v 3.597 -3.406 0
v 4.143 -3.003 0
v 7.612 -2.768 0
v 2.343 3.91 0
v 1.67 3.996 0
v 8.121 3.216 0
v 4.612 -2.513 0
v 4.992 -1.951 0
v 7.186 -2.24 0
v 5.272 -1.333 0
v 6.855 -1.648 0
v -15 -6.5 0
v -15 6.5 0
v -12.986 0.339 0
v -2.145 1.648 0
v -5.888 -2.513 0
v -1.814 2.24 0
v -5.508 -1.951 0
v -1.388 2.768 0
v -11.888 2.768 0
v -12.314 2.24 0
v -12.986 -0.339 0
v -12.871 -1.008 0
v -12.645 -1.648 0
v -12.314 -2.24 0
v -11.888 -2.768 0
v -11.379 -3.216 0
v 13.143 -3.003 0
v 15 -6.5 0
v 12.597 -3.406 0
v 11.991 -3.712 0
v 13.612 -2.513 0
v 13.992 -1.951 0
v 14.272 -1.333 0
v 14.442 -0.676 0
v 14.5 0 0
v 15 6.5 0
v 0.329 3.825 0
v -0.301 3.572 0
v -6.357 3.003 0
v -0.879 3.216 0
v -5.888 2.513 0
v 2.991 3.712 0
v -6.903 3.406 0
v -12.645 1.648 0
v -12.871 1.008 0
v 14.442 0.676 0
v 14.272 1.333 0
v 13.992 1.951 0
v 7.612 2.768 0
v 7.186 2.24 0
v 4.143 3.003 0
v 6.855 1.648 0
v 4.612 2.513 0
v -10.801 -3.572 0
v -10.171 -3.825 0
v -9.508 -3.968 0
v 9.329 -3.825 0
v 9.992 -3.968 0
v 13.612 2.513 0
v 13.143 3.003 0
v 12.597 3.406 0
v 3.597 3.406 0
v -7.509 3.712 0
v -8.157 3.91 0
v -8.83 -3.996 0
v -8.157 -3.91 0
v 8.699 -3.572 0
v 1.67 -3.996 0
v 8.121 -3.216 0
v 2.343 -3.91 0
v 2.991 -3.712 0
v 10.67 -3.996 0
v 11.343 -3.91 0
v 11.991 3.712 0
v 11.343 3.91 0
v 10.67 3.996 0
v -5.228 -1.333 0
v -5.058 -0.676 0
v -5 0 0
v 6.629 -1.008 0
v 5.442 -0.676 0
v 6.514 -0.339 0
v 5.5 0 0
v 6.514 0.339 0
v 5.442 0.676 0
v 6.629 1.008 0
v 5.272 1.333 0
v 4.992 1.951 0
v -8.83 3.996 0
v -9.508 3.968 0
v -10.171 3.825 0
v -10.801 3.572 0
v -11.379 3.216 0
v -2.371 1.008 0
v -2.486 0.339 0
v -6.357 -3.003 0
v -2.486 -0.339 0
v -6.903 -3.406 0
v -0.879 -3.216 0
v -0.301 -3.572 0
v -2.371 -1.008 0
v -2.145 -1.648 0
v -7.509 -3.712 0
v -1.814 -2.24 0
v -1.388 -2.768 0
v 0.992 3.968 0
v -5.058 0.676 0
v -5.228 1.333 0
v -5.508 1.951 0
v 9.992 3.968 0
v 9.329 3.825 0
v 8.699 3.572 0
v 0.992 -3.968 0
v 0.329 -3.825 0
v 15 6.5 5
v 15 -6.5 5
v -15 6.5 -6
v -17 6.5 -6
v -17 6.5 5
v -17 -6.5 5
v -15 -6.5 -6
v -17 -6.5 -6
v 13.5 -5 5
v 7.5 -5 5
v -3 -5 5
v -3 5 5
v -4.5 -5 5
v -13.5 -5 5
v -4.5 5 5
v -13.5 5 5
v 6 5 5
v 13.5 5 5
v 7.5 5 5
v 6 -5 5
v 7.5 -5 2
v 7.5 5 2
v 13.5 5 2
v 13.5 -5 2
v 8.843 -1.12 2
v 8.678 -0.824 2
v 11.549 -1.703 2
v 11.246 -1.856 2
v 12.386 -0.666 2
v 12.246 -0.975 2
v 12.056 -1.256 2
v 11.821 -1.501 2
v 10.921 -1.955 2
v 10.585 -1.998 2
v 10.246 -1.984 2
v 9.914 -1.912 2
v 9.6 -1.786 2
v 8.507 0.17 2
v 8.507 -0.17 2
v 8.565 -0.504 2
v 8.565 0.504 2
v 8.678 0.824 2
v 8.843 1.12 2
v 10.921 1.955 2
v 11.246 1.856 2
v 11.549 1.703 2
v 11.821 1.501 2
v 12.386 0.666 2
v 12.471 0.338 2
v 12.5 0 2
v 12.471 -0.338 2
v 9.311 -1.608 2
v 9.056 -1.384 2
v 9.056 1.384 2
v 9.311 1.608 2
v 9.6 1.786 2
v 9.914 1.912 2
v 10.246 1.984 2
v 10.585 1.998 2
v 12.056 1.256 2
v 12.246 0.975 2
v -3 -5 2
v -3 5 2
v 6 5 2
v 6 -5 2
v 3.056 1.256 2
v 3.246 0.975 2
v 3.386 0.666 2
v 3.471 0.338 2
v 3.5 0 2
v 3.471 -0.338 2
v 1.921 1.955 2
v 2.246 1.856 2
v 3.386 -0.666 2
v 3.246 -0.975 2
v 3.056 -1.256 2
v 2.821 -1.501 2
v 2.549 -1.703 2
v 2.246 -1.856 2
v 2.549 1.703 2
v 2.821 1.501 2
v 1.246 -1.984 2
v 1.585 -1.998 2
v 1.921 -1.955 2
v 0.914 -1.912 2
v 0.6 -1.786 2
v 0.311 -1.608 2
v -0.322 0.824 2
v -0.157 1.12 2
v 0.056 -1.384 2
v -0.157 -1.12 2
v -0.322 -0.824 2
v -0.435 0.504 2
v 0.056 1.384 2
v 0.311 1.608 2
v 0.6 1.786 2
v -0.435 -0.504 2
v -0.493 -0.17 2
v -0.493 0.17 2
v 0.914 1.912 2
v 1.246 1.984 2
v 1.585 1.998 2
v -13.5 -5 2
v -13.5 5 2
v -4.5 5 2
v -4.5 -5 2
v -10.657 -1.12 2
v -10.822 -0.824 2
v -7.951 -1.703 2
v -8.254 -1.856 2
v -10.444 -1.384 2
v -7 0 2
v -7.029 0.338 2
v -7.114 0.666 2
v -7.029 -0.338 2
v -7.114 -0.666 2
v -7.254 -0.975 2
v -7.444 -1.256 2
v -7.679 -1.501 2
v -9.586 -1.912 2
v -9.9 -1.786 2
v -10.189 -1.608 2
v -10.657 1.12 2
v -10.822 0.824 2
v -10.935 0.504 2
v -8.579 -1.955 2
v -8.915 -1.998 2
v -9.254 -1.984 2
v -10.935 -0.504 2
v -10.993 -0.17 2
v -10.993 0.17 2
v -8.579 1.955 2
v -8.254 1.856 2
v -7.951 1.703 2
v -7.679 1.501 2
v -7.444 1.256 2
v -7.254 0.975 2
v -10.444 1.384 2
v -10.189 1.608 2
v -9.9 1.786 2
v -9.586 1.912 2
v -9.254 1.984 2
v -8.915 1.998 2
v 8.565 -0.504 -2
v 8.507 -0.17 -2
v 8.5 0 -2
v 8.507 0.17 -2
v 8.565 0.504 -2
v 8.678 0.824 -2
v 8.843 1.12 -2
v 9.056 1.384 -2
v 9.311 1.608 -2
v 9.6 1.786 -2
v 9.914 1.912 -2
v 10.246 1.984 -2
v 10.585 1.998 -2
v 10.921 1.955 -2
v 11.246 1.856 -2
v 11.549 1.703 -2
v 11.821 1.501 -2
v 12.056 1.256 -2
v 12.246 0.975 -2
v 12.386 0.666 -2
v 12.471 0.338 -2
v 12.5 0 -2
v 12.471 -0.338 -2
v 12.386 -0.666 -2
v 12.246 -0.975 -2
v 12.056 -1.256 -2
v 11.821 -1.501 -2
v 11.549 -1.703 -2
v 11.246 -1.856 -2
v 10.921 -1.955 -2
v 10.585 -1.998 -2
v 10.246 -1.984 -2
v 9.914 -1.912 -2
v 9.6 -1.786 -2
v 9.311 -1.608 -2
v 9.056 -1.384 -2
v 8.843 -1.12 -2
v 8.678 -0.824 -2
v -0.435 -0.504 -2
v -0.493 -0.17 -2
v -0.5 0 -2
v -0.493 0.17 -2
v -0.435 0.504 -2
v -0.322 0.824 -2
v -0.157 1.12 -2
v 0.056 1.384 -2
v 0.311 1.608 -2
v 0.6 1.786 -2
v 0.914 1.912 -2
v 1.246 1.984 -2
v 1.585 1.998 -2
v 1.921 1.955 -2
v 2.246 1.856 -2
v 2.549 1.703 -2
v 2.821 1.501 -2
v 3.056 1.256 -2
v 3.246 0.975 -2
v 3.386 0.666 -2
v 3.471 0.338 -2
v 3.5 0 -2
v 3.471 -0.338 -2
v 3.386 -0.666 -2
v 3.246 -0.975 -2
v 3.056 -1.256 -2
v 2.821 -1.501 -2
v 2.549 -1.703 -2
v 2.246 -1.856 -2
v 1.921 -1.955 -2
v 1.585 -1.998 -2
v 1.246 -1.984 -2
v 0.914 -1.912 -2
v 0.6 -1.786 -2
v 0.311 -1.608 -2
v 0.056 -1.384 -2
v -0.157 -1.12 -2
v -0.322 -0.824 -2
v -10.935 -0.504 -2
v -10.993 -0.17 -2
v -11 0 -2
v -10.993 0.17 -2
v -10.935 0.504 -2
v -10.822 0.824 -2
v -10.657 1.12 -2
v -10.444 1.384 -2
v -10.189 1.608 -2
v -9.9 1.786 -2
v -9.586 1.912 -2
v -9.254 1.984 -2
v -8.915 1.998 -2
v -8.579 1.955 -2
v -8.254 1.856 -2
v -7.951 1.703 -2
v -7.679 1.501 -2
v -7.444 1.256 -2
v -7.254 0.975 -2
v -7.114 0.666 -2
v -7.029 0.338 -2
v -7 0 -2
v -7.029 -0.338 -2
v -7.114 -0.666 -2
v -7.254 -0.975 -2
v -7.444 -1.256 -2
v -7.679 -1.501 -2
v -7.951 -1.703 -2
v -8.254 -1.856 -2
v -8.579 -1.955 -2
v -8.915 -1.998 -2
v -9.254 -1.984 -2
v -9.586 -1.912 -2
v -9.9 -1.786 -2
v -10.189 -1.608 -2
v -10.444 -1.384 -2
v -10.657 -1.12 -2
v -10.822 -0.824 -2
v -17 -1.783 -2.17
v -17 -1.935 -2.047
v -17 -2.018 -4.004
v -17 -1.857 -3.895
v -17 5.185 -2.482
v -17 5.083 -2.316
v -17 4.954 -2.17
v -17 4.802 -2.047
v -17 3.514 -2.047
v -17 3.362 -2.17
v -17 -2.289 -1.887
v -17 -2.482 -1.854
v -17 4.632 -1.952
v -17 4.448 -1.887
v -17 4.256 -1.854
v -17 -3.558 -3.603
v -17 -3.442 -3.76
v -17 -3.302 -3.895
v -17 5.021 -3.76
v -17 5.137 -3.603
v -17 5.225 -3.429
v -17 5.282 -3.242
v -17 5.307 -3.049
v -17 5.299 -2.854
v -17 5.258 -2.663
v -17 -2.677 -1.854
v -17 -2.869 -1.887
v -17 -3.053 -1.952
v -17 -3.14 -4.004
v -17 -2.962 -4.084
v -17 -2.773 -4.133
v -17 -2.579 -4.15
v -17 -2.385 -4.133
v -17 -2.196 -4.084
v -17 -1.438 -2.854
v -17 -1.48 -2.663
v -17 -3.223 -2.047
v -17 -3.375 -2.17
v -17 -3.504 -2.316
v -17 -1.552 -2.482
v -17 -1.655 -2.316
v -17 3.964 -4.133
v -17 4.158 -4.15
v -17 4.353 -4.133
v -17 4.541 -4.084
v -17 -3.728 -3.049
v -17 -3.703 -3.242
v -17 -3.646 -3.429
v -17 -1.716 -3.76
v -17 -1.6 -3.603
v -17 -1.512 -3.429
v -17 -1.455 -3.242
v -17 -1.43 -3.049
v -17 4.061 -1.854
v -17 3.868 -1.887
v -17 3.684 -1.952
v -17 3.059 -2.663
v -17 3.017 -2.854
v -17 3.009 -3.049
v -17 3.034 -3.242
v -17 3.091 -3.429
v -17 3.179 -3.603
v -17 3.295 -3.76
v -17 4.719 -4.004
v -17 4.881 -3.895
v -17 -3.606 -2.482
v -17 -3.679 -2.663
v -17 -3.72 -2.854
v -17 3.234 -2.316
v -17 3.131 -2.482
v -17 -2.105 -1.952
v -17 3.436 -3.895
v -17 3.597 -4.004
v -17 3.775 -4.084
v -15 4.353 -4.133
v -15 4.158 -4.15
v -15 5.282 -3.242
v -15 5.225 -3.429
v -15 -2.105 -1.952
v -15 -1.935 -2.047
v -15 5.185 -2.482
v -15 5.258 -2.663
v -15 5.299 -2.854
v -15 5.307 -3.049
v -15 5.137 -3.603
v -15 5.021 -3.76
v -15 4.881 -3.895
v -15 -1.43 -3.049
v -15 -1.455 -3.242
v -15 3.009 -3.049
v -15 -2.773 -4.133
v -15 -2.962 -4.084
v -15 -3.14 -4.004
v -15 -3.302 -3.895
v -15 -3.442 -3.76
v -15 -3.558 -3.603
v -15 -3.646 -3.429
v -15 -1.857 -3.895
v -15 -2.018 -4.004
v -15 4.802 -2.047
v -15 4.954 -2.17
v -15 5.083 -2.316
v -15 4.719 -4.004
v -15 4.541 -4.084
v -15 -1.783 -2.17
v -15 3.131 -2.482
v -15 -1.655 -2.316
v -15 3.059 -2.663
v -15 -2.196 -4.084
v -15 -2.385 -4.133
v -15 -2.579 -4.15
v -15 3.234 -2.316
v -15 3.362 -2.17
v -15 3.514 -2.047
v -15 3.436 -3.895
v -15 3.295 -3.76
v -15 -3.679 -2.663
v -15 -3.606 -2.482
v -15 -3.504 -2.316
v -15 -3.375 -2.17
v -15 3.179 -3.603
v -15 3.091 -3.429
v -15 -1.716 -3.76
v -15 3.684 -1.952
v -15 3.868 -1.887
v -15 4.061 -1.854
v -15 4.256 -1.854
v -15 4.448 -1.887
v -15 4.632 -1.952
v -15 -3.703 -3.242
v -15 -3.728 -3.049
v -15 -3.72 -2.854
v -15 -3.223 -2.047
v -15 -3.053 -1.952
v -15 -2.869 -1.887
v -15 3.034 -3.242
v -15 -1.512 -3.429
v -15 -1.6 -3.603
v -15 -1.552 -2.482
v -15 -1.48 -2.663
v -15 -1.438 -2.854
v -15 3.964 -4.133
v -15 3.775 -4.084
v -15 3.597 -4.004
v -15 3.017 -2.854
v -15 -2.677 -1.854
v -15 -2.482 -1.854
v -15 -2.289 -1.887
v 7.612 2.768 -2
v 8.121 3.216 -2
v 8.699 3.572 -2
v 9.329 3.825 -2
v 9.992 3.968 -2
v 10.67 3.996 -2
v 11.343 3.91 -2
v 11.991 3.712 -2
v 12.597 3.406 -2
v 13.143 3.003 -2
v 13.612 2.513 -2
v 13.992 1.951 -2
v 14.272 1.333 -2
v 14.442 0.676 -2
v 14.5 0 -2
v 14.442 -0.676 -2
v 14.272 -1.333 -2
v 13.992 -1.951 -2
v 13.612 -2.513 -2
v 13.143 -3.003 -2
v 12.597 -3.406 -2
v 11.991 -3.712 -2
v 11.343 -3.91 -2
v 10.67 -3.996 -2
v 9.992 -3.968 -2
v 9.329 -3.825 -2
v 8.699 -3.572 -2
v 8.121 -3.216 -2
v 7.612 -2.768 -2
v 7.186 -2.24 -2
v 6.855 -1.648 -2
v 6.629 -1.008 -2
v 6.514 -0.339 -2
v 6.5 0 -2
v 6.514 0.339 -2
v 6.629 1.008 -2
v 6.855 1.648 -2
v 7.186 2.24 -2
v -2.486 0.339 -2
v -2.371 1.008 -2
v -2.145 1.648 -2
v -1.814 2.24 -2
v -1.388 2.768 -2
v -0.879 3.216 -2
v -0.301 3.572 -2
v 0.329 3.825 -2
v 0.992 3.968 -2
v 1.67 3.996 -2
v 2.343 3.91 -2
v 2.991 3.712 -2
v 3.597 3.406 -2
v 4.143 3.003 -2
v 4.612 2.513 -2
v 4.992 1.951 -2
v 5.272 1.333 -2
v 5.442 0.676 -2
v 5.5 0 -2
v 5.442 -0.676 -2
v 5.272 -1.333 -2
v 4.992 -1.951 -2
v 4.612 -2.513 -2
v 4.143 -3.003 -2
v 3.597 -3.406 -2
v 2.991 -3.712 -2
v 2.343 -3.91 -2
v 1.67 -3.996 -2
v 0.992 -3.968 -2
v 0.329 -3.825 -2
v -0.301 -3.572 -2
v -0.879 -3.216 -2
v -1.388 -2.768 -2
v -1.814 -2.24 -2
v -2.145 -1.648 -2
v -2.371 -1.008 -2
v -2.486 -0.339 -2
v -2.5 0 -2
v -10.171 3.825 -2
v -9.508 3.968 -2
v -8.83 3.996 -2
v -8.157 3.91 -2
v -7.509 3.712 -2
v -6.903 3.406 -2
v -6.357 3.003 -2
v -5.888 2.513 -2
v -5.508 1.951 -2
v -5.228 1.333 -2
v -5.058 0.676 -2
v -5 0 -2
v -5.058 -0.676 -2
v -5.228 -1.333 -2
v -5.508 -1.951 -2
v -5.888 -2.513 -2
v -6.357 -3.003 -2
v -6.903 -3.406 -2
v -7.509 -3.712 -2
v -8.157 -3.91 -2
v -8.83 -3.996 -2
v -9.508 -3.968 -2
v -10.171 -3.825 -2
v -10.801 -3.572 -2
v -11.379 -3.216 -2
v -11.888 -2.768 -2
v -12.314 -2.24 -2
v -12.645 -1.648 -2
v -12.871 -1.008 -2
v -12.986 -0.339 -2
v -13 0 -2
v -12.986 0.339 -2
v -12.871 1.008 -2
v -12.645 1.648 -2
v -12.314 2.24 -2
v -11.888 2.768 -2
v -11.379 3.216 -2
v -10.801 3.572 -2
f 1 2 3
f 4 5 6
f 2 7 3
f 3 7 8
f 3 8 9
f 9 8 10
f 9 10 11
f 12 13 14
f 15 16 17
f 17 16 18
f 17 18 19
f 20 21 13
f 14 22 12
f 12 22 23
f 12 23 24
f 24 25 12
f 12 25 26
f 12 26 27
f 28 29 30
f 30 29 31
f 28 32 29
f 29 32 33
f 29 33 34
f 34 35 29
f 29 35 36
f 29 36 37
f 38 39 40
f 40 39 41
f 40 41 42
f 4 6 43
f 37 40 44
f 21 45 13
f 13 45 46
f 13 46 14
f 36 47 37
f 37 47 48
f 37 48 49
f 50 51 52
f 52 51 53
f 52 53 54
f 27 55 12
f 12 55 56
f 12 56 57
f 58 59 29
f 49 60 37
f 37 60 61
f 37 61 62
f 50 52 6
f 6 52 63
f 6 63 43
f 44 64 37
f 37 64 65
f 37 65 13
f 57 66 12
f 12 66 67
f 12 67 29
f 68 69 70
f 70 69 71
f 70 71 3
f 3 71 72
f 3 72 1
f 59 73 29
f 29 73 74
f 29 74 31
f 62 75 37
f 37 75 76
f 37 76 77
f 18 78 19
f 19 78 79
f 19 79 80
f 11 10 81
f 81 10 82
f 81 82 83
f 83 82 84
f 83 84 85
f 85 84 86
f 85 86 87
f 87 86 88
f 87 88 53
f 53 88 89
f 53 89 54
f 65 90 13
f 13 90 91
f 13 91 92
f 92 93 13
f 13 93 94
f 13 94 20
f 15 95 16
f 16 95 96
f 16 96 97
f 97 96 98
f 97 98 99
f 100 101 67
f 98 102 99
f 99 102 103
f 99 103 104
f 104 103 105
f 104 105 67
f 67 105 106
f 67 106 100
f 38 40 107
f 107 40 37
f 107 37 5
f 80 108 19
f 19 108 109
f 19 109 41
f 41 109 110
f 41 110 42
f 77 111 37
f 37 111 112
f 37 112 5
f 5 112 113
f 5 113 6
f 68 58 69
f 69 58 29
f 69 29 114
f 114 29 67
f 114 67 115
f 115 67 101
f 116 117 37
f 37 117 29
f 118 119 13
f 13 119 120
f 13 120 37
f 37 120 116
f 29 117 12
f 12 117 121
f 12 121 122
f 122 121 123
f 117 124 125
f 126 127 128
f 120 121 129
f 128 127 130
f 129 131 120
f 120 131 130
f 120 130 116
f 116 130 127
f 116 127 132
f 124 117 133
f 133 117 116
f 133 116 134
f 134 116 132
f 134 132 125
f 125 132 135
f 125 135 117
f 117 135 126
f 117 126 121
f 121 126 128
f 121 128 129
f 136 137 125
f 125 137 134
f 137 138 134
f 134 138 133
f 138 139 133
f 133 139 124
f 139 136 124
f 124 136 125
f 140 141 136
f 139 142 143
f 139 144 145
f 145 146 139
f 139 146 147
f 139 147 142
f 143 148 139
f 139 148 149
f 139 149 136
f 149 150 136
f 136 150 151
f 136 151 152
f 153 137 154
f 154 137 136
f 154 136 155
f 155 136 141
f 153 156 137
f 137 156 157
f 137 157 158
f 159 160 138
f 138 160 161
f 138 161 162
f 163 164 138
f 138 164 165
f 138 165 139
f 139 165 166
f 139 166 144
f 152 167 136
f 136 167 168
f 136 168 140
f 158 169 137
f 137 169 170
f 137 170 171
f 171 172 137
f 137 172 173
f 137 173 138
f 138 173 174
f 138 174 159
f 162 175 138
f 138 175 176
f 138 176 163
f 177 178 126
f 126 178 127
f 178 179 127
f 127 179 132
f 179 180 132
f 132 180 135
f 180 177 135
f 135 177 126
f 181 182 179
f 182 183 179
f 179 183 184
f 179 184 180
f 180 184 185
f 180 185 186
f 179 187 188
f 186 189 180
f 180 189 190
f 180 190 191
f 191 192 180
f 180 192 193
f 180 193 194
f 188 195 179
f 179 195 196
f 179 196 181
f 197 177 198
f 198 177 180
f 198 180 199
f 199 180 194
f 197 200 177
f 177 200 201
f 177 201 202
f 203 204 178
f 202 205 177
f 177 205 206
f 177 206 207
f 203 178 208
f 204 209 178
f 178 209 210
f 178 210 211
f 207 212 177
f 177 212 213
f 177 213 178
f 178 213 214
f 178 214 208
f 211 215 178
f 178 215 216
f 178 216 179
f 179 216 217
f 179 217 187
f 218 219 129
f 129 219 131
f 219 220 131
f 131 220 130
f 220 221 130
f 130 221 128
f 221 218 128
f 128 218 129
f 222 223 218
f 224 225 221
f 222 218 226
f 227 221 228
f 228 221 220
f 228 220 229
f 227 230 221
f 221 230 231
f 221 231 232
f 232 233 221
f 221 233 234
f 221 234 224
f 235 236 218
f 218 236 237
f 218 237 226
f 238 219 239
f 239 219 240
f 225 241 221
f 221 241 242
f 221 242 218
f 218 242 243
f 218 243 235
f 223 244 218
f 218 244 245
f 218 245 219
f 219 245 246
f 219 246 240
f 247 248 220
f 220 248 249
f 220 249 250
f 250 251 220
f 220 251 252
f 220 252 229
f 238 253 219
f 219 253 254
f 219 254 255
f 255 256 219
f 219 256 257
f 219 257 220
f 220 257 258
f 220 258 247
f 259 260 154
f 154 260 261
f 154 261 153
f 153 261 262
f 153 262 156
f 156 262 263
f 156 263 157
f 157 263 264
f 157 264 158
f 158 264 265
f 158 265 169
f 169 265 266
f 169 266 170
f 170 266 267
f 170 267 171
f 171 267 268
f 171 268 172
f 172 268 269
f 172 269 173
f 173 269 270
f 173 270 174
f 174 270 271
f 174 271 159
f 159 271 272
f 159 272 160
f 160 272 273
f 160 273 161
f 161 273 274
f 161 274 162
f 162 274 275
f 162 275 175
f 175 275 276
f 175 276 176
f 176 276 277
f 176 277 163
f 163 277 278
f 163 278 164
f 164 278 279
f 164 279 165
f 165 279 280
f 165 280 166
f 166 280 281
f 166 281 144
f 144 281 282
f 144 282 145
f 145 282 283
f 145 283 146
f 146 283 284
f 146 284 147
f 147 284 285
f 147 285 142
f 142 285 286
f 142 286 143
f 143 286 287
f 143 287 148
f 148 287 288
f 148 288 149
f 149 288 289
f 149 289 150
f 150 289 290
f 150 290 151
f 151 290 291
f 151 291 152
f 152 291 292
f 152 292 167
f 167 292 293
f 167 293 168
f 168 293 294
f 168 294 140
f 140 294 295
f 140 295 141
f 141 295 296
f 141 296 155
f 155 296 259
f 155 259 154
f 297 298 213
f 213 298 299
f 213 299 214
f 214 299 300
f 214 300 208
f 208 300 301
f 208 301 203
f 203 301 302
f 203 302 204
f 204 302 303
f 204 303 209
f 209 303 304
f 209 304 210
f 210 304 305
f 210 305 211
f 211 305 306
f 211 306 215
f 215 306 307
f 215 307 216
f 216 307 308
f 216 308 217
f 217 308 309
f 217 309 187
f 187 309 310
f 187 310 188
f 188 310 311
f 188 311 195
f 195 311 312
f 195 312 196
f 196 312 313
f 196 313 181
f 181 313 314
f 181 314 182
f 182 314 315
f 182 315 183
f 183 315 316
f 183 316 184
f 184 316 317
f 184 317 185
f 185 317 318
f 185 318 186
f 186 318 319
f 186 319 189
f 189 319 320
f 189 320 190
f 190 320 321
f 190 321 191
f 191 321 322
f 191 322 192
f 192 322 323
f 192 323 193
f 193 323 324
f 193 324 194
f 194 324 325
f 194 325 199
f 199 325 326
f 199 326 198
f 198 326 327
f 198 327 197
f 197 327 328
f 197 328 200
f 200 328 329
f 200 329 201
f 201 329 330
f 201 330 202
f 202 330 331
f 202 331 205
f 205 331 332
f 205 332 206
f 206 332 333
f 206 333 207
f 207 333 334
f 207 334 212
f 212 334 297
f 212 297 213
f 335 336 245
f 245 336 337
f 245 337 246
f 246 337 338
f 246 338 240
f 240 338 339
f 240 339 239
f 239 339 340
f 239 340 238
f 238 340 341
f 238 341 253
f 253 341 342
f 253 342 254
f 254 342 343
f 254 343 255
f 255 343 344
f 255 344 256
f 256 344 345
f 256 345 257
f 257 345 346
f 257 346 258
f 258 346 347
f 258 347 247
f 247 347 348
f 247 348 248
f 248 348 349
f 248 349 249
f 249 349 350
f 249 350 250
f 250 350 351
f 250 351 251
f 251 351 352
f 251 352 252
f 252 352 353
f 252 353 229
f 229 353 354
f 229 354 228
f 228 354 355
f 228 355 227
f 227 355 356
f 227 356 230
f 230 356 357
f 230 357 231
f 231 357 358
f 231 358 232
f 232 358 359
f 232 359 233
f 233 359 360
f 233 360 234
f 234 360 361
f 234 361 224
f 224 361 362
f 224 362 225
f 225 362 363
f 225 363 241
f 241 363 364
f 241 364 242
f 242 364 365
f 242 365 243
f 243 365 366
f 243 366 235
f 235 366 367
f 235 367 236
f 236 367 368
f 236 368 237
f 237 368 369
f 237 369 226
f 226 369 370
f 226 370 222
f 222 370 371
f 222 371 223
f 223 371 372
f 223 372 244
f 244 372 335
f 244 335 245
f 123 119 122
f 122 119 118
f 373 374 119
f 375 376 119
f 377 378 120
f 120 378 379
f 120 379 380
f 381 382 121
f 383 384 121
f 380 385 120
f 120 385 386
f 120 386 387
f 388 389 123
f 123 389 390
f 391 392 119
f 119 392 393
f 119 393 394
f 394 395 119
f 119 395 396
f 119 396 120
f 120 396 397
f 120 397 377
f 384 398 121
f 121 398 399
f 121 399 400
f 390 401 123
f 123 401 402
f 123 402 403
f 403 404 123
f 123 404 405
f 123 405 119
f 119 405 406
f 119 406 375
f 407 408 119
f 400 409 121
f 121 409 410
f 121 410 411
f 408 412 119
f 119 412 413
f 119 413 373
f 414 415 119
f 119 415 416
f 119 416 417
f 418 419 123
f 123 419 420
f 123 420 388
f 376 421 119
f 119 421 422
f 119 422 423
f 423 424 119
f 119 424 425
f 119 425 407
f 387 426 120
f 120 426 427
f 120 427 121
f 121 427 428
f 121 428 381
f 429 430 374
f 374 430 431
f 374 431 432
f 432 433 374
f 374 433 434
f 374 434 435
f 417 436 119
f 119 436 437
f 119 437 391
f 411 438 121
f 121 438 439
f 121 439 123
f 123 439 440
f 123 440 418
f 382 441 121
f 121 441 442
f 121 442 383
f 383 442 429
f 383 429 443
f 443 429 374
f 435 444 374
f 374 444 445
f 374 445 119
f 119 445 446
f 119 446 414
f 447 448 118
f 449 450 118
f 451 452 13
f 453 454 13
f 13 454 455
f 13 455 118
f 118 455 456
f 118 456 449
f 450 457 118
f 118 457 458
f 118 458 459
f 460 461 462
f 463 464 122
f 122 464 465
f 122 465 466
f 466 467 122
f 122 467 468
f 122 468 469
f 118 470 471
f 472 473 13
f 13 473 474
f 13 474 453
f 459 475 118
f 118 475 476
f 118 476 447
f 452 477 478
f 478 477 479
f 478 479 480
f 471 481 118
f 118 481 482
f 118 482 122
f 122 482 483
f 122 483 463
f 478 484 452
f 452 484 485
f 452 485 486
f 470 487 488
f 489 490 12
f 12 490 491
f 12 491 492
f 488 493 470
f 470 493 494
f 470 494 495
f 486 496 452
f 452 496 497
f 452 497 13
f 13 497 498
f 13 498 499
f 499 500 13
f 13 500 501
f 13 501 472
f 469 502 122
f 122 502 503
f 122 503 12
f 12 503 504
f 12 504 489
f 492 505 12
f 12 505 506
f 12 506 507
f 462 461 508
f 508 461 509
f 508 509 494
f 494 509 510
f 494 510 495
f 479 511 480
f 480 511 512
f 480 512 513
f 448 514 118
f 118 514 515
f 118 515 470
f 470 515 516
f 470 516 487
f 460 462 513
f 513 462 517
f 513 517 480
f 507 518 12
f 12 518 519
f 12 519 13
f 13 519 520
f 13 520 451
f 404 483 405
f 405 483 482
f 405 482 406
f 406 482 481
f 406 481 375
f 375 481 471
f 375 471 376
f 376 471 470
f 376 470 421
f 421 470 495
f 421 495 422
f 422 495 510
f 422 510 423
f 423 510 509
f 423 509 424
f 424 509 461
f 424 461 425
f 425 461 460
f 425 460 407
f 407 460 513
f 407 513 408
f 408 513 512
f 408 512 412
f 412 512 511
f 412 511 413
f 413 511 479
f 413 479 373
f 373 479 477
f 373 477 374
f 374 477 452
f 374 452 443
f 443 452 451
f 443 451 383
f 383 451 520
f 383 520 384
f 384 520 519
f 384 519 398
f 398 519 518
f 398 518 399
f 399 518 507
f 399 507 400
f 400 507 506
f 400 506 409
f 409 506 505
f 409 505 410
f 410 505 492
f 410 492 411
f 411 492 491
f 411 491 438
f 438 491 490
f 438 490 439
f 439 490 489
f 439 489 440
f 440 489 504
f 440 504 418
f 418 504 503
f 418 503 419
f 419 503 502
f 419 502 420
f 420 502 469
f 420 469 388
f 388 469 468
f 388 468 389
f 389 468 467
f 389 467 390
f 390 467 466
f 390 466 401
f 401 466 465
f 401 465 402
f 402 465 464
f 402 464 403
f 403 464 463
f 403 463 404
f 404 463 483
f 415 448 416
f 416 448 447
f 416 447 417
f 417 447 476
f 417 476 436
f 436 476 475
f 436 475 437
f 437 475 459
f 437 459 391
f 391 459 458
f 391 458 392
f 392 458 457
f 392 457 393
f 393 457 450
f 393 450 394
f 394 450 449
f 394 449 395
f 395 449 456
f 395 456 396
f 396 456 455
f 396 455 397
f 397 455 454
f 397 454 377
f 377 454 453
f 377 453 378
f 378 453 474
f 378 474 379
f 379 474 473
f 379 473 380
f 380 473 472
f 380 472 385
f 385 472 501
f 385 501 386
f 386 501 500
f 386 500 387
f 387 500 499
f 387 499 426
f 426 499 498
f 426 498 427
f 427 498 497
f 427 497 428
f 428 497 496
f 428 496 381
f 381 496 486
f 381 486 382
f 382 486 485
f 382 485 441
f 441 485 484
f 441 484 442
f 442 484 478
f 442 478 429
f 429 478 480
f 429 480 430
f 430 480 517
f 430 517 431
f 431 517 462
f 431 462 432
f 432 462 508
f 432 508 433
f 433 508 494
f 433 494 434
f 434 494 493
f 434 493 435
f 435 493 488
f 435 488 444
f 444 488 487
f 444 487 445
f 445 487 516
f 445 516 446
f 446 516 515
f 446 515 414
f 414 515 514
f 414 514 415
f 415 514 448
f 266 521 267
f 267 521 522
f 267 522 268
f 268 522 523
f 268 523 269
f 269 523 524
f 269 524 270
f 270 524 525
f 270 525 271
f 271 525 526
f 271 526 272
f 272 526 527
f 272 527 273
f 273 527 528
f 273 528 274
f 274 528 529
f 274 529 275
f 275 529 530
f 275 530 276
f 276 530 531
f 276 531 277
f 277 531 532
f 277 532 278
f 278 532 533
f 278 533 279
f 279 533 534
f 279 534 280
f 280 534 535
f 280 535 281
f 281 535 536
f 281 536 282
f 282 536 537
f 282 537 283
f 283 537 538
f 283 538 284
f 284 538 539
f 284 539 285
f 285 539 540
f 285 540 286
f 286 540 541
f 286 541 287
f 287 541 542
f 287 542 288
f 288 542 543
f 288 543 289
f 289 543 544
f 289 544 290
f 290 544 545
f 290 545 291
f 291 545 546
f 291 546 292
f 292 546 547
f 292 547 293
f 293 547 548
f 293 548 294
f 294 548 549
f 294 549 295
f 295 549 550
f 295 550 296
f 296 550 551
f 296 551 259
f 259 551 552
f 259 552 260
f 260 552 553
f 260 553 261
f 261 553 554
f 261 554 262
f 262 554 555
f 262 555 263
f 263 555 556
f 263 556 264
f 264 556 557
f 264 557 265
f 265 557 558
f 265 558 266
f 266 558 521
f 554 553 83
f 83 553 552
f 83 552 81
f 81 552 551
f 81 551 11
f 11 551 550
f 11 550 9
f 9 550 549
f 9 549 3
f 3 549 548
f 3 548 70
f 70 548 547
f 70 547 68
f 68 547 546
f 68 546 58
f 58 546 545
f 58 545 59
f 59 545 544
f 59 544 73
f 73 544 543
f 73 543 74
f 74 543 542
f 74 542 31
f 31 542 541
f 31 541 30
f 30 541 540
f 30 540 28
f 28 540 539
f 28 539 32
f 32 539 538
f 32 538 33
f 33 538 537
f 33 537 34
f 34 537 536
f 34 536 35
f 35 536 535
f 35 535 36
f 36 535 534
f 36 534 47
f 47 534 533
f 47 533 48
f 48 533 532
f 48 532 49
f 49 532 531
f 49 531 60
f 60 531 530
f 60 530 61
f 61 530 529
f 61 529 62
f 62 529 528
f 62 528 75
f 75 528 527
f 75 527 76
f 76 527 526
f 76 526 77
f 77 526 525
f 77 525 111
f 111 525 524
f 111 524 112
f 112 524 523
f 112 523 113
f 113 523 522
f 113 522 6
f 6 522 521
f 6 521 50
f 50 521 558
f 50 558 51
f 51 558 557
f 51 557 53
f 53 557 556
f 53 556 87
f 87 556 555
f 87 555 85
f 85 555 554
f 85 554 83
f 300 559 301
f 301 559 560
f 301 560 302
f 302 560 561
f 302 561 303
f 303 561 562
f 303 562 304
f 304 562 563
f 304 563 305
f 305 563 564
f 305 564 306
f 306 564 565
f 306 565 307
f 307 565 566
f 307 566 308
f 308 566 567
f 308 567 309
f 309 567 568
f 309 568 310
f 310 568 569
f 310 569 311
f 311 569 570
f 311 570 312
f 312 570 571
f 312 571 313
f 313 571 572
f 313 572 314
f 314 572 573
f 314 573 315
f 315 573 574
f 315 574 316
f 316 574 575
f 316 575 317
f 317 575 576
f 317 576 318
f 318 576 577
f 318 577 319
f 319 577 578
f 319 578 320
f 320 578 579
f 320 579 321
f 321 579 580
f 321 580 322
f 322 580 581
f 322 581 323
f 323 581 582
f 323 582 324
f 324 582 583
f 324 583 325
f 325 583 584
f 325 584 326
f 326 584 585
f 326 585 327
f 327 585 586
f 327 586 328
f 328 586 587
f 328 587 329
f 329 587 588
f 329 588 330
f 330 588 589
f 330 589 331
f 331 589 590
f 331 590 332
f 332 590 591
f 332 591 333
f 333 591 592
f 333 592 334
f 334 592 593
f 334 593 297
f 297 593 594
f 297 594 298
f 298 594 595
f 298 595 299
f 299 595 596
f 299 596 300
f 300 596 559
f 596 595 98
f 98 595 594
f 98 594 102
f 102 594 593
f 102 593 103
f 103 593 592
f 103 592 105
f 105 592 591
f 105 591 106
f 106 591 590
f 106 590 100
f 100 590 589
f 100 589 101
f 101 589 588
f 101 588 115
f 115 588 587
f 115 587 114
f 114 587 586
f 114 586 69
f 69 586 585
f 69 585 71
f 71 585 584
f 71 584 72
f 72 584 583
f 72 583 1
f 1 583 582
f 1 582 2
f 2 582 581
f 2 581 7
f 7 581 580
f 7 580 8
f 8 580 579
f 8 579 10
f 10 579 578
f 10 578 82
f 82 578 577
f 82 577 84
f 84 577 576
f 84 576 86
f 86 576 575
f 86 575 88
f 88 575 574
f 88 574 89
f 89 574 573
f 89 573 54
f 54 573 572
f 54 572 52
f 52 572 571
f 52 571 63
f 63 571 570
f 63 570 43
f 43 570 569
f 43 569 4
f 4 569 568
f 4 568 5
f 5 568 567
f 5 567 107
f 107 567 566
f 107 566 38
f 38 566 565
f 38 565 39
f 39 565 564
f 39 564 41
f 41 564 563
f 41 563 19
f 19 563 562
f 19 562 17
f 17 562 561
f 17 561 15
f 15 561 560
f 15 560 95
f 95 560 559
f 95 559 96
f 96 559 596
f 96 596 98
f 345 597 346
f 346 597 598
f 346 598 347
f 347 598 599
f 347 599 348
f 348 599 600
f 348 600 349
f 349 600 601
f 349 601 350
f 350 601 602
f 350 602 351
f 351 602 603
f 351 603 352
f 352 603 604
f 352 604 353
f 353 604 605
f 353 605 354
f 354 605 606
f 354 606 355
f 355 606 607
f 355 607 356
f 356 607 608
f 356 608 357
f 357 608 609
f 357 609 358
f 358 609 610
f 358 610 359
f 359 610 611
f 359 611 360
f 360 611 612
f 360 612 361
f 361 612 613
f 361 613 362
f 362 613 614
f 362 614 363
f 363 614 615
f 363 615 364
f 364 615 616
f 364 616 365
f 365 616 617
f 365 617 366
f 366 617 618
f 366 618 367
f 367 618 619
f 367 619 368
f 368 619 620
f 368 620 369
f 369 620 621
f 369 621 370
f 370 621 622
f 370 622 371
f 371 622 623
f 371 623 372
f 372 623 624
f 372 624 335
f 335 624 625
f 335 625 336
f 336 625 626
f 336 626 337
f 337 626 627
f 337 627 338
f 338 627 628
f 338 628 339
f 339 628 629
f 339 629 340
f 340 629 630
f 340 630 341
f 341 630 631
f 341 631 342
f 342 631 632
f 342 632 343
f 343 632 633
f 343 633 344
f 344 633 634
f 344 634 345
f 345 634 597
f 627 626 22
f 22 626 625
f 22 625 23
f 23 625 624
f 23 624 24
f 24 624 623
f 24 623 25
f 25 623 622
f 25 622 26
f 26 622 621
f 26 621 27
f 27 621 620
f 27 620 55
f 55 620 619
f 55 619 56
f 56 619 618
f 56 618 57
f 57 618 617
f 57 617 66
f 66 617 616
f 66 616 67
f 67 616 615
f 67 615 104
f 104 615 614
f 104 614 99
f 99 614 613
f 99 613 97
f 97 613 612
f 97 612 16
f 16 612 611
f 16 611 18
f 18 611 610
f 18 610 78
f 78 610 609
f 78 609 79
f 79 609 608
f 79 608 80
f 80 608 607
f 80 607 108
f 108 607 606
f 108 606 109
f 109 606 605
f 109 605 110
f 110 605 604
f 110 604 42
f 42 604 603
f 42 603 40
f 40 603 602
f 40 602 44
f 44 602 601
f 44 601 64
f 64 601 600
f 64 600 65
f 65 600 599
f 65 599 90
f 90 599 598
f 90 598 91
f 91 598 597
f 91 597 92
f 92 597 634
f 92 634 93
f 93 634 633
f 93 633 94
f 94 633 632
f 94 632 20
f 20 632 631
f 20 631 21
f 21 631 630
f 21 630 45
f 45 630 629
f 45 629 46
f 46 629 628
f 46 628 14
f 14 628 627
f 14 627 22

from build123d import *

# Parameters (mm, degrees)
SKETCH1_W           = 30
SKETCH1_H           = 13
BOSS_EXTRUDE1_DEPTH = 5
SKETCH2_W           = 9
SKETCH2_H           = 10
SKETCH2_W_2         = 6
CUT_EXTRUDE1_DEPTH  = 3
SKETCH3_R           = 2
CUT_EXTRUDE2_DEPTH  = 5
SKETCH4_W           = 11
SKETCH4_H           = 13
BOSS_EXTRUDE2_DEPTH = 2
SKETCH5_R           = 1.15
CUT_EXTRUDE3_DEPTH  = 2
SKETCH6_R           = 4
SKETCH6_R_2         = 2
BOSS_EXTRUDE3_DEPTH = 2


with BuildPart() as part:
    # Sketch1 → Boss-Extrude1 (new body)
    with BuildSketch(Plane.XY):
        Rectangle(SKETCH1_W, SKETCH1_H)
    extrude(amount=BOSS_EXTRUDE1_DEPTH)

    # Sketch2 → Cut-Extrude1 (cut)
    with BuildSketch(Plane.XY.offset(5)):
        with Locations((-9, 0)):
            Rectangle(SKETCH2_W, SKETCH2_H)
        with Locations((1.5, 0)):
            Rectangle(SKETCH2_W, SKETCH2_H)
        with Locations((10.5, 0)):
            Rectangle(SKETCH2_W_2, SKETCH2_H)
    extrude(amount=-CUT_EXTRUDE1_DEPTH, mode=Mode.SUBTRACT)

    # Sketch3 → Cut-Extrude2 (cut)
    with BuildSketch(Plane.XY.offset(2)):
        with Locations((-9, 0)):
            Circle(SKETCH3_R)
        with Locations((1.5, 0)):
            Circle(SKETCH3_R)
        with Locations((10.5, 0)):
            Circle(SKETCH3_R)
    extrude(amount=-CUT_EXTRUDE2_DEPTH, mode=Mode.SUBTRACT)

    # Sketch4 → Boss-Extrude2 (add)
    with BuildSketch(Plane.ZY.offset(15)):
        with Locations((-0.5, 0)):
            Rectangle(SKETCH4_W, SKETCH4_H)
    extrude(amount=BOSS_EXTRUDE2_DEPTH)

    # Sketch5 → Cut-Extrude3 (cut)
    with BuildSketch(Plane(origin=(-15, 0, 0), x_dir=(0, 0, -1), z_dir=(1, 0, 0))):
        with Locations((3, 4.158153832)):
            Circle(SKETCH5_R)
        with Locations((3, -2.579108073)):
            Circle(SKETCH5_R)
    extrude(amount=-CUT_EXTRUDE3_DEPTH, mode=Mode.SUBTRACT)

    # Sketch6 → Boss-Extrude3 (add)
    with BuildSketch(Plane(origin=(0, 0, 0), x_dir=(-1, 0, 0), z_dir=(0, 0, -1))):
        with Locations(Location((-10.5, 0, 0), (0, 0, 180))):
            Circle(SKETCH6_R)
        with Locations(Location((-10.5, 0, 0), (0, 0, 180))):
            Circle(SKETCH6_R_2, mode=Mode.SUBTRACT)
        with Locations(Location((-1.5, 0, 0), (0, 0, 180))):
            Circle(SKETCH6_R)
        with Locations(Location((-1.5, 0, 0), (0, 0, 180))):
            Circle(SKETCH6_R_2, mode=Mode.SUBTRACT)
        with Locations(Location((9, 0, 0), (0, 0, 180))):
            Circle(SKETCH6_R)
        with Locations(Location((9, 0, 0), (0, 0, 180))):
            Circle(SKETCH6_R_2, mode=Mode.SUBTRACT)
    extrude(amount=BOSS_EXTRUDE3_DEPTH)


solid = part.part
